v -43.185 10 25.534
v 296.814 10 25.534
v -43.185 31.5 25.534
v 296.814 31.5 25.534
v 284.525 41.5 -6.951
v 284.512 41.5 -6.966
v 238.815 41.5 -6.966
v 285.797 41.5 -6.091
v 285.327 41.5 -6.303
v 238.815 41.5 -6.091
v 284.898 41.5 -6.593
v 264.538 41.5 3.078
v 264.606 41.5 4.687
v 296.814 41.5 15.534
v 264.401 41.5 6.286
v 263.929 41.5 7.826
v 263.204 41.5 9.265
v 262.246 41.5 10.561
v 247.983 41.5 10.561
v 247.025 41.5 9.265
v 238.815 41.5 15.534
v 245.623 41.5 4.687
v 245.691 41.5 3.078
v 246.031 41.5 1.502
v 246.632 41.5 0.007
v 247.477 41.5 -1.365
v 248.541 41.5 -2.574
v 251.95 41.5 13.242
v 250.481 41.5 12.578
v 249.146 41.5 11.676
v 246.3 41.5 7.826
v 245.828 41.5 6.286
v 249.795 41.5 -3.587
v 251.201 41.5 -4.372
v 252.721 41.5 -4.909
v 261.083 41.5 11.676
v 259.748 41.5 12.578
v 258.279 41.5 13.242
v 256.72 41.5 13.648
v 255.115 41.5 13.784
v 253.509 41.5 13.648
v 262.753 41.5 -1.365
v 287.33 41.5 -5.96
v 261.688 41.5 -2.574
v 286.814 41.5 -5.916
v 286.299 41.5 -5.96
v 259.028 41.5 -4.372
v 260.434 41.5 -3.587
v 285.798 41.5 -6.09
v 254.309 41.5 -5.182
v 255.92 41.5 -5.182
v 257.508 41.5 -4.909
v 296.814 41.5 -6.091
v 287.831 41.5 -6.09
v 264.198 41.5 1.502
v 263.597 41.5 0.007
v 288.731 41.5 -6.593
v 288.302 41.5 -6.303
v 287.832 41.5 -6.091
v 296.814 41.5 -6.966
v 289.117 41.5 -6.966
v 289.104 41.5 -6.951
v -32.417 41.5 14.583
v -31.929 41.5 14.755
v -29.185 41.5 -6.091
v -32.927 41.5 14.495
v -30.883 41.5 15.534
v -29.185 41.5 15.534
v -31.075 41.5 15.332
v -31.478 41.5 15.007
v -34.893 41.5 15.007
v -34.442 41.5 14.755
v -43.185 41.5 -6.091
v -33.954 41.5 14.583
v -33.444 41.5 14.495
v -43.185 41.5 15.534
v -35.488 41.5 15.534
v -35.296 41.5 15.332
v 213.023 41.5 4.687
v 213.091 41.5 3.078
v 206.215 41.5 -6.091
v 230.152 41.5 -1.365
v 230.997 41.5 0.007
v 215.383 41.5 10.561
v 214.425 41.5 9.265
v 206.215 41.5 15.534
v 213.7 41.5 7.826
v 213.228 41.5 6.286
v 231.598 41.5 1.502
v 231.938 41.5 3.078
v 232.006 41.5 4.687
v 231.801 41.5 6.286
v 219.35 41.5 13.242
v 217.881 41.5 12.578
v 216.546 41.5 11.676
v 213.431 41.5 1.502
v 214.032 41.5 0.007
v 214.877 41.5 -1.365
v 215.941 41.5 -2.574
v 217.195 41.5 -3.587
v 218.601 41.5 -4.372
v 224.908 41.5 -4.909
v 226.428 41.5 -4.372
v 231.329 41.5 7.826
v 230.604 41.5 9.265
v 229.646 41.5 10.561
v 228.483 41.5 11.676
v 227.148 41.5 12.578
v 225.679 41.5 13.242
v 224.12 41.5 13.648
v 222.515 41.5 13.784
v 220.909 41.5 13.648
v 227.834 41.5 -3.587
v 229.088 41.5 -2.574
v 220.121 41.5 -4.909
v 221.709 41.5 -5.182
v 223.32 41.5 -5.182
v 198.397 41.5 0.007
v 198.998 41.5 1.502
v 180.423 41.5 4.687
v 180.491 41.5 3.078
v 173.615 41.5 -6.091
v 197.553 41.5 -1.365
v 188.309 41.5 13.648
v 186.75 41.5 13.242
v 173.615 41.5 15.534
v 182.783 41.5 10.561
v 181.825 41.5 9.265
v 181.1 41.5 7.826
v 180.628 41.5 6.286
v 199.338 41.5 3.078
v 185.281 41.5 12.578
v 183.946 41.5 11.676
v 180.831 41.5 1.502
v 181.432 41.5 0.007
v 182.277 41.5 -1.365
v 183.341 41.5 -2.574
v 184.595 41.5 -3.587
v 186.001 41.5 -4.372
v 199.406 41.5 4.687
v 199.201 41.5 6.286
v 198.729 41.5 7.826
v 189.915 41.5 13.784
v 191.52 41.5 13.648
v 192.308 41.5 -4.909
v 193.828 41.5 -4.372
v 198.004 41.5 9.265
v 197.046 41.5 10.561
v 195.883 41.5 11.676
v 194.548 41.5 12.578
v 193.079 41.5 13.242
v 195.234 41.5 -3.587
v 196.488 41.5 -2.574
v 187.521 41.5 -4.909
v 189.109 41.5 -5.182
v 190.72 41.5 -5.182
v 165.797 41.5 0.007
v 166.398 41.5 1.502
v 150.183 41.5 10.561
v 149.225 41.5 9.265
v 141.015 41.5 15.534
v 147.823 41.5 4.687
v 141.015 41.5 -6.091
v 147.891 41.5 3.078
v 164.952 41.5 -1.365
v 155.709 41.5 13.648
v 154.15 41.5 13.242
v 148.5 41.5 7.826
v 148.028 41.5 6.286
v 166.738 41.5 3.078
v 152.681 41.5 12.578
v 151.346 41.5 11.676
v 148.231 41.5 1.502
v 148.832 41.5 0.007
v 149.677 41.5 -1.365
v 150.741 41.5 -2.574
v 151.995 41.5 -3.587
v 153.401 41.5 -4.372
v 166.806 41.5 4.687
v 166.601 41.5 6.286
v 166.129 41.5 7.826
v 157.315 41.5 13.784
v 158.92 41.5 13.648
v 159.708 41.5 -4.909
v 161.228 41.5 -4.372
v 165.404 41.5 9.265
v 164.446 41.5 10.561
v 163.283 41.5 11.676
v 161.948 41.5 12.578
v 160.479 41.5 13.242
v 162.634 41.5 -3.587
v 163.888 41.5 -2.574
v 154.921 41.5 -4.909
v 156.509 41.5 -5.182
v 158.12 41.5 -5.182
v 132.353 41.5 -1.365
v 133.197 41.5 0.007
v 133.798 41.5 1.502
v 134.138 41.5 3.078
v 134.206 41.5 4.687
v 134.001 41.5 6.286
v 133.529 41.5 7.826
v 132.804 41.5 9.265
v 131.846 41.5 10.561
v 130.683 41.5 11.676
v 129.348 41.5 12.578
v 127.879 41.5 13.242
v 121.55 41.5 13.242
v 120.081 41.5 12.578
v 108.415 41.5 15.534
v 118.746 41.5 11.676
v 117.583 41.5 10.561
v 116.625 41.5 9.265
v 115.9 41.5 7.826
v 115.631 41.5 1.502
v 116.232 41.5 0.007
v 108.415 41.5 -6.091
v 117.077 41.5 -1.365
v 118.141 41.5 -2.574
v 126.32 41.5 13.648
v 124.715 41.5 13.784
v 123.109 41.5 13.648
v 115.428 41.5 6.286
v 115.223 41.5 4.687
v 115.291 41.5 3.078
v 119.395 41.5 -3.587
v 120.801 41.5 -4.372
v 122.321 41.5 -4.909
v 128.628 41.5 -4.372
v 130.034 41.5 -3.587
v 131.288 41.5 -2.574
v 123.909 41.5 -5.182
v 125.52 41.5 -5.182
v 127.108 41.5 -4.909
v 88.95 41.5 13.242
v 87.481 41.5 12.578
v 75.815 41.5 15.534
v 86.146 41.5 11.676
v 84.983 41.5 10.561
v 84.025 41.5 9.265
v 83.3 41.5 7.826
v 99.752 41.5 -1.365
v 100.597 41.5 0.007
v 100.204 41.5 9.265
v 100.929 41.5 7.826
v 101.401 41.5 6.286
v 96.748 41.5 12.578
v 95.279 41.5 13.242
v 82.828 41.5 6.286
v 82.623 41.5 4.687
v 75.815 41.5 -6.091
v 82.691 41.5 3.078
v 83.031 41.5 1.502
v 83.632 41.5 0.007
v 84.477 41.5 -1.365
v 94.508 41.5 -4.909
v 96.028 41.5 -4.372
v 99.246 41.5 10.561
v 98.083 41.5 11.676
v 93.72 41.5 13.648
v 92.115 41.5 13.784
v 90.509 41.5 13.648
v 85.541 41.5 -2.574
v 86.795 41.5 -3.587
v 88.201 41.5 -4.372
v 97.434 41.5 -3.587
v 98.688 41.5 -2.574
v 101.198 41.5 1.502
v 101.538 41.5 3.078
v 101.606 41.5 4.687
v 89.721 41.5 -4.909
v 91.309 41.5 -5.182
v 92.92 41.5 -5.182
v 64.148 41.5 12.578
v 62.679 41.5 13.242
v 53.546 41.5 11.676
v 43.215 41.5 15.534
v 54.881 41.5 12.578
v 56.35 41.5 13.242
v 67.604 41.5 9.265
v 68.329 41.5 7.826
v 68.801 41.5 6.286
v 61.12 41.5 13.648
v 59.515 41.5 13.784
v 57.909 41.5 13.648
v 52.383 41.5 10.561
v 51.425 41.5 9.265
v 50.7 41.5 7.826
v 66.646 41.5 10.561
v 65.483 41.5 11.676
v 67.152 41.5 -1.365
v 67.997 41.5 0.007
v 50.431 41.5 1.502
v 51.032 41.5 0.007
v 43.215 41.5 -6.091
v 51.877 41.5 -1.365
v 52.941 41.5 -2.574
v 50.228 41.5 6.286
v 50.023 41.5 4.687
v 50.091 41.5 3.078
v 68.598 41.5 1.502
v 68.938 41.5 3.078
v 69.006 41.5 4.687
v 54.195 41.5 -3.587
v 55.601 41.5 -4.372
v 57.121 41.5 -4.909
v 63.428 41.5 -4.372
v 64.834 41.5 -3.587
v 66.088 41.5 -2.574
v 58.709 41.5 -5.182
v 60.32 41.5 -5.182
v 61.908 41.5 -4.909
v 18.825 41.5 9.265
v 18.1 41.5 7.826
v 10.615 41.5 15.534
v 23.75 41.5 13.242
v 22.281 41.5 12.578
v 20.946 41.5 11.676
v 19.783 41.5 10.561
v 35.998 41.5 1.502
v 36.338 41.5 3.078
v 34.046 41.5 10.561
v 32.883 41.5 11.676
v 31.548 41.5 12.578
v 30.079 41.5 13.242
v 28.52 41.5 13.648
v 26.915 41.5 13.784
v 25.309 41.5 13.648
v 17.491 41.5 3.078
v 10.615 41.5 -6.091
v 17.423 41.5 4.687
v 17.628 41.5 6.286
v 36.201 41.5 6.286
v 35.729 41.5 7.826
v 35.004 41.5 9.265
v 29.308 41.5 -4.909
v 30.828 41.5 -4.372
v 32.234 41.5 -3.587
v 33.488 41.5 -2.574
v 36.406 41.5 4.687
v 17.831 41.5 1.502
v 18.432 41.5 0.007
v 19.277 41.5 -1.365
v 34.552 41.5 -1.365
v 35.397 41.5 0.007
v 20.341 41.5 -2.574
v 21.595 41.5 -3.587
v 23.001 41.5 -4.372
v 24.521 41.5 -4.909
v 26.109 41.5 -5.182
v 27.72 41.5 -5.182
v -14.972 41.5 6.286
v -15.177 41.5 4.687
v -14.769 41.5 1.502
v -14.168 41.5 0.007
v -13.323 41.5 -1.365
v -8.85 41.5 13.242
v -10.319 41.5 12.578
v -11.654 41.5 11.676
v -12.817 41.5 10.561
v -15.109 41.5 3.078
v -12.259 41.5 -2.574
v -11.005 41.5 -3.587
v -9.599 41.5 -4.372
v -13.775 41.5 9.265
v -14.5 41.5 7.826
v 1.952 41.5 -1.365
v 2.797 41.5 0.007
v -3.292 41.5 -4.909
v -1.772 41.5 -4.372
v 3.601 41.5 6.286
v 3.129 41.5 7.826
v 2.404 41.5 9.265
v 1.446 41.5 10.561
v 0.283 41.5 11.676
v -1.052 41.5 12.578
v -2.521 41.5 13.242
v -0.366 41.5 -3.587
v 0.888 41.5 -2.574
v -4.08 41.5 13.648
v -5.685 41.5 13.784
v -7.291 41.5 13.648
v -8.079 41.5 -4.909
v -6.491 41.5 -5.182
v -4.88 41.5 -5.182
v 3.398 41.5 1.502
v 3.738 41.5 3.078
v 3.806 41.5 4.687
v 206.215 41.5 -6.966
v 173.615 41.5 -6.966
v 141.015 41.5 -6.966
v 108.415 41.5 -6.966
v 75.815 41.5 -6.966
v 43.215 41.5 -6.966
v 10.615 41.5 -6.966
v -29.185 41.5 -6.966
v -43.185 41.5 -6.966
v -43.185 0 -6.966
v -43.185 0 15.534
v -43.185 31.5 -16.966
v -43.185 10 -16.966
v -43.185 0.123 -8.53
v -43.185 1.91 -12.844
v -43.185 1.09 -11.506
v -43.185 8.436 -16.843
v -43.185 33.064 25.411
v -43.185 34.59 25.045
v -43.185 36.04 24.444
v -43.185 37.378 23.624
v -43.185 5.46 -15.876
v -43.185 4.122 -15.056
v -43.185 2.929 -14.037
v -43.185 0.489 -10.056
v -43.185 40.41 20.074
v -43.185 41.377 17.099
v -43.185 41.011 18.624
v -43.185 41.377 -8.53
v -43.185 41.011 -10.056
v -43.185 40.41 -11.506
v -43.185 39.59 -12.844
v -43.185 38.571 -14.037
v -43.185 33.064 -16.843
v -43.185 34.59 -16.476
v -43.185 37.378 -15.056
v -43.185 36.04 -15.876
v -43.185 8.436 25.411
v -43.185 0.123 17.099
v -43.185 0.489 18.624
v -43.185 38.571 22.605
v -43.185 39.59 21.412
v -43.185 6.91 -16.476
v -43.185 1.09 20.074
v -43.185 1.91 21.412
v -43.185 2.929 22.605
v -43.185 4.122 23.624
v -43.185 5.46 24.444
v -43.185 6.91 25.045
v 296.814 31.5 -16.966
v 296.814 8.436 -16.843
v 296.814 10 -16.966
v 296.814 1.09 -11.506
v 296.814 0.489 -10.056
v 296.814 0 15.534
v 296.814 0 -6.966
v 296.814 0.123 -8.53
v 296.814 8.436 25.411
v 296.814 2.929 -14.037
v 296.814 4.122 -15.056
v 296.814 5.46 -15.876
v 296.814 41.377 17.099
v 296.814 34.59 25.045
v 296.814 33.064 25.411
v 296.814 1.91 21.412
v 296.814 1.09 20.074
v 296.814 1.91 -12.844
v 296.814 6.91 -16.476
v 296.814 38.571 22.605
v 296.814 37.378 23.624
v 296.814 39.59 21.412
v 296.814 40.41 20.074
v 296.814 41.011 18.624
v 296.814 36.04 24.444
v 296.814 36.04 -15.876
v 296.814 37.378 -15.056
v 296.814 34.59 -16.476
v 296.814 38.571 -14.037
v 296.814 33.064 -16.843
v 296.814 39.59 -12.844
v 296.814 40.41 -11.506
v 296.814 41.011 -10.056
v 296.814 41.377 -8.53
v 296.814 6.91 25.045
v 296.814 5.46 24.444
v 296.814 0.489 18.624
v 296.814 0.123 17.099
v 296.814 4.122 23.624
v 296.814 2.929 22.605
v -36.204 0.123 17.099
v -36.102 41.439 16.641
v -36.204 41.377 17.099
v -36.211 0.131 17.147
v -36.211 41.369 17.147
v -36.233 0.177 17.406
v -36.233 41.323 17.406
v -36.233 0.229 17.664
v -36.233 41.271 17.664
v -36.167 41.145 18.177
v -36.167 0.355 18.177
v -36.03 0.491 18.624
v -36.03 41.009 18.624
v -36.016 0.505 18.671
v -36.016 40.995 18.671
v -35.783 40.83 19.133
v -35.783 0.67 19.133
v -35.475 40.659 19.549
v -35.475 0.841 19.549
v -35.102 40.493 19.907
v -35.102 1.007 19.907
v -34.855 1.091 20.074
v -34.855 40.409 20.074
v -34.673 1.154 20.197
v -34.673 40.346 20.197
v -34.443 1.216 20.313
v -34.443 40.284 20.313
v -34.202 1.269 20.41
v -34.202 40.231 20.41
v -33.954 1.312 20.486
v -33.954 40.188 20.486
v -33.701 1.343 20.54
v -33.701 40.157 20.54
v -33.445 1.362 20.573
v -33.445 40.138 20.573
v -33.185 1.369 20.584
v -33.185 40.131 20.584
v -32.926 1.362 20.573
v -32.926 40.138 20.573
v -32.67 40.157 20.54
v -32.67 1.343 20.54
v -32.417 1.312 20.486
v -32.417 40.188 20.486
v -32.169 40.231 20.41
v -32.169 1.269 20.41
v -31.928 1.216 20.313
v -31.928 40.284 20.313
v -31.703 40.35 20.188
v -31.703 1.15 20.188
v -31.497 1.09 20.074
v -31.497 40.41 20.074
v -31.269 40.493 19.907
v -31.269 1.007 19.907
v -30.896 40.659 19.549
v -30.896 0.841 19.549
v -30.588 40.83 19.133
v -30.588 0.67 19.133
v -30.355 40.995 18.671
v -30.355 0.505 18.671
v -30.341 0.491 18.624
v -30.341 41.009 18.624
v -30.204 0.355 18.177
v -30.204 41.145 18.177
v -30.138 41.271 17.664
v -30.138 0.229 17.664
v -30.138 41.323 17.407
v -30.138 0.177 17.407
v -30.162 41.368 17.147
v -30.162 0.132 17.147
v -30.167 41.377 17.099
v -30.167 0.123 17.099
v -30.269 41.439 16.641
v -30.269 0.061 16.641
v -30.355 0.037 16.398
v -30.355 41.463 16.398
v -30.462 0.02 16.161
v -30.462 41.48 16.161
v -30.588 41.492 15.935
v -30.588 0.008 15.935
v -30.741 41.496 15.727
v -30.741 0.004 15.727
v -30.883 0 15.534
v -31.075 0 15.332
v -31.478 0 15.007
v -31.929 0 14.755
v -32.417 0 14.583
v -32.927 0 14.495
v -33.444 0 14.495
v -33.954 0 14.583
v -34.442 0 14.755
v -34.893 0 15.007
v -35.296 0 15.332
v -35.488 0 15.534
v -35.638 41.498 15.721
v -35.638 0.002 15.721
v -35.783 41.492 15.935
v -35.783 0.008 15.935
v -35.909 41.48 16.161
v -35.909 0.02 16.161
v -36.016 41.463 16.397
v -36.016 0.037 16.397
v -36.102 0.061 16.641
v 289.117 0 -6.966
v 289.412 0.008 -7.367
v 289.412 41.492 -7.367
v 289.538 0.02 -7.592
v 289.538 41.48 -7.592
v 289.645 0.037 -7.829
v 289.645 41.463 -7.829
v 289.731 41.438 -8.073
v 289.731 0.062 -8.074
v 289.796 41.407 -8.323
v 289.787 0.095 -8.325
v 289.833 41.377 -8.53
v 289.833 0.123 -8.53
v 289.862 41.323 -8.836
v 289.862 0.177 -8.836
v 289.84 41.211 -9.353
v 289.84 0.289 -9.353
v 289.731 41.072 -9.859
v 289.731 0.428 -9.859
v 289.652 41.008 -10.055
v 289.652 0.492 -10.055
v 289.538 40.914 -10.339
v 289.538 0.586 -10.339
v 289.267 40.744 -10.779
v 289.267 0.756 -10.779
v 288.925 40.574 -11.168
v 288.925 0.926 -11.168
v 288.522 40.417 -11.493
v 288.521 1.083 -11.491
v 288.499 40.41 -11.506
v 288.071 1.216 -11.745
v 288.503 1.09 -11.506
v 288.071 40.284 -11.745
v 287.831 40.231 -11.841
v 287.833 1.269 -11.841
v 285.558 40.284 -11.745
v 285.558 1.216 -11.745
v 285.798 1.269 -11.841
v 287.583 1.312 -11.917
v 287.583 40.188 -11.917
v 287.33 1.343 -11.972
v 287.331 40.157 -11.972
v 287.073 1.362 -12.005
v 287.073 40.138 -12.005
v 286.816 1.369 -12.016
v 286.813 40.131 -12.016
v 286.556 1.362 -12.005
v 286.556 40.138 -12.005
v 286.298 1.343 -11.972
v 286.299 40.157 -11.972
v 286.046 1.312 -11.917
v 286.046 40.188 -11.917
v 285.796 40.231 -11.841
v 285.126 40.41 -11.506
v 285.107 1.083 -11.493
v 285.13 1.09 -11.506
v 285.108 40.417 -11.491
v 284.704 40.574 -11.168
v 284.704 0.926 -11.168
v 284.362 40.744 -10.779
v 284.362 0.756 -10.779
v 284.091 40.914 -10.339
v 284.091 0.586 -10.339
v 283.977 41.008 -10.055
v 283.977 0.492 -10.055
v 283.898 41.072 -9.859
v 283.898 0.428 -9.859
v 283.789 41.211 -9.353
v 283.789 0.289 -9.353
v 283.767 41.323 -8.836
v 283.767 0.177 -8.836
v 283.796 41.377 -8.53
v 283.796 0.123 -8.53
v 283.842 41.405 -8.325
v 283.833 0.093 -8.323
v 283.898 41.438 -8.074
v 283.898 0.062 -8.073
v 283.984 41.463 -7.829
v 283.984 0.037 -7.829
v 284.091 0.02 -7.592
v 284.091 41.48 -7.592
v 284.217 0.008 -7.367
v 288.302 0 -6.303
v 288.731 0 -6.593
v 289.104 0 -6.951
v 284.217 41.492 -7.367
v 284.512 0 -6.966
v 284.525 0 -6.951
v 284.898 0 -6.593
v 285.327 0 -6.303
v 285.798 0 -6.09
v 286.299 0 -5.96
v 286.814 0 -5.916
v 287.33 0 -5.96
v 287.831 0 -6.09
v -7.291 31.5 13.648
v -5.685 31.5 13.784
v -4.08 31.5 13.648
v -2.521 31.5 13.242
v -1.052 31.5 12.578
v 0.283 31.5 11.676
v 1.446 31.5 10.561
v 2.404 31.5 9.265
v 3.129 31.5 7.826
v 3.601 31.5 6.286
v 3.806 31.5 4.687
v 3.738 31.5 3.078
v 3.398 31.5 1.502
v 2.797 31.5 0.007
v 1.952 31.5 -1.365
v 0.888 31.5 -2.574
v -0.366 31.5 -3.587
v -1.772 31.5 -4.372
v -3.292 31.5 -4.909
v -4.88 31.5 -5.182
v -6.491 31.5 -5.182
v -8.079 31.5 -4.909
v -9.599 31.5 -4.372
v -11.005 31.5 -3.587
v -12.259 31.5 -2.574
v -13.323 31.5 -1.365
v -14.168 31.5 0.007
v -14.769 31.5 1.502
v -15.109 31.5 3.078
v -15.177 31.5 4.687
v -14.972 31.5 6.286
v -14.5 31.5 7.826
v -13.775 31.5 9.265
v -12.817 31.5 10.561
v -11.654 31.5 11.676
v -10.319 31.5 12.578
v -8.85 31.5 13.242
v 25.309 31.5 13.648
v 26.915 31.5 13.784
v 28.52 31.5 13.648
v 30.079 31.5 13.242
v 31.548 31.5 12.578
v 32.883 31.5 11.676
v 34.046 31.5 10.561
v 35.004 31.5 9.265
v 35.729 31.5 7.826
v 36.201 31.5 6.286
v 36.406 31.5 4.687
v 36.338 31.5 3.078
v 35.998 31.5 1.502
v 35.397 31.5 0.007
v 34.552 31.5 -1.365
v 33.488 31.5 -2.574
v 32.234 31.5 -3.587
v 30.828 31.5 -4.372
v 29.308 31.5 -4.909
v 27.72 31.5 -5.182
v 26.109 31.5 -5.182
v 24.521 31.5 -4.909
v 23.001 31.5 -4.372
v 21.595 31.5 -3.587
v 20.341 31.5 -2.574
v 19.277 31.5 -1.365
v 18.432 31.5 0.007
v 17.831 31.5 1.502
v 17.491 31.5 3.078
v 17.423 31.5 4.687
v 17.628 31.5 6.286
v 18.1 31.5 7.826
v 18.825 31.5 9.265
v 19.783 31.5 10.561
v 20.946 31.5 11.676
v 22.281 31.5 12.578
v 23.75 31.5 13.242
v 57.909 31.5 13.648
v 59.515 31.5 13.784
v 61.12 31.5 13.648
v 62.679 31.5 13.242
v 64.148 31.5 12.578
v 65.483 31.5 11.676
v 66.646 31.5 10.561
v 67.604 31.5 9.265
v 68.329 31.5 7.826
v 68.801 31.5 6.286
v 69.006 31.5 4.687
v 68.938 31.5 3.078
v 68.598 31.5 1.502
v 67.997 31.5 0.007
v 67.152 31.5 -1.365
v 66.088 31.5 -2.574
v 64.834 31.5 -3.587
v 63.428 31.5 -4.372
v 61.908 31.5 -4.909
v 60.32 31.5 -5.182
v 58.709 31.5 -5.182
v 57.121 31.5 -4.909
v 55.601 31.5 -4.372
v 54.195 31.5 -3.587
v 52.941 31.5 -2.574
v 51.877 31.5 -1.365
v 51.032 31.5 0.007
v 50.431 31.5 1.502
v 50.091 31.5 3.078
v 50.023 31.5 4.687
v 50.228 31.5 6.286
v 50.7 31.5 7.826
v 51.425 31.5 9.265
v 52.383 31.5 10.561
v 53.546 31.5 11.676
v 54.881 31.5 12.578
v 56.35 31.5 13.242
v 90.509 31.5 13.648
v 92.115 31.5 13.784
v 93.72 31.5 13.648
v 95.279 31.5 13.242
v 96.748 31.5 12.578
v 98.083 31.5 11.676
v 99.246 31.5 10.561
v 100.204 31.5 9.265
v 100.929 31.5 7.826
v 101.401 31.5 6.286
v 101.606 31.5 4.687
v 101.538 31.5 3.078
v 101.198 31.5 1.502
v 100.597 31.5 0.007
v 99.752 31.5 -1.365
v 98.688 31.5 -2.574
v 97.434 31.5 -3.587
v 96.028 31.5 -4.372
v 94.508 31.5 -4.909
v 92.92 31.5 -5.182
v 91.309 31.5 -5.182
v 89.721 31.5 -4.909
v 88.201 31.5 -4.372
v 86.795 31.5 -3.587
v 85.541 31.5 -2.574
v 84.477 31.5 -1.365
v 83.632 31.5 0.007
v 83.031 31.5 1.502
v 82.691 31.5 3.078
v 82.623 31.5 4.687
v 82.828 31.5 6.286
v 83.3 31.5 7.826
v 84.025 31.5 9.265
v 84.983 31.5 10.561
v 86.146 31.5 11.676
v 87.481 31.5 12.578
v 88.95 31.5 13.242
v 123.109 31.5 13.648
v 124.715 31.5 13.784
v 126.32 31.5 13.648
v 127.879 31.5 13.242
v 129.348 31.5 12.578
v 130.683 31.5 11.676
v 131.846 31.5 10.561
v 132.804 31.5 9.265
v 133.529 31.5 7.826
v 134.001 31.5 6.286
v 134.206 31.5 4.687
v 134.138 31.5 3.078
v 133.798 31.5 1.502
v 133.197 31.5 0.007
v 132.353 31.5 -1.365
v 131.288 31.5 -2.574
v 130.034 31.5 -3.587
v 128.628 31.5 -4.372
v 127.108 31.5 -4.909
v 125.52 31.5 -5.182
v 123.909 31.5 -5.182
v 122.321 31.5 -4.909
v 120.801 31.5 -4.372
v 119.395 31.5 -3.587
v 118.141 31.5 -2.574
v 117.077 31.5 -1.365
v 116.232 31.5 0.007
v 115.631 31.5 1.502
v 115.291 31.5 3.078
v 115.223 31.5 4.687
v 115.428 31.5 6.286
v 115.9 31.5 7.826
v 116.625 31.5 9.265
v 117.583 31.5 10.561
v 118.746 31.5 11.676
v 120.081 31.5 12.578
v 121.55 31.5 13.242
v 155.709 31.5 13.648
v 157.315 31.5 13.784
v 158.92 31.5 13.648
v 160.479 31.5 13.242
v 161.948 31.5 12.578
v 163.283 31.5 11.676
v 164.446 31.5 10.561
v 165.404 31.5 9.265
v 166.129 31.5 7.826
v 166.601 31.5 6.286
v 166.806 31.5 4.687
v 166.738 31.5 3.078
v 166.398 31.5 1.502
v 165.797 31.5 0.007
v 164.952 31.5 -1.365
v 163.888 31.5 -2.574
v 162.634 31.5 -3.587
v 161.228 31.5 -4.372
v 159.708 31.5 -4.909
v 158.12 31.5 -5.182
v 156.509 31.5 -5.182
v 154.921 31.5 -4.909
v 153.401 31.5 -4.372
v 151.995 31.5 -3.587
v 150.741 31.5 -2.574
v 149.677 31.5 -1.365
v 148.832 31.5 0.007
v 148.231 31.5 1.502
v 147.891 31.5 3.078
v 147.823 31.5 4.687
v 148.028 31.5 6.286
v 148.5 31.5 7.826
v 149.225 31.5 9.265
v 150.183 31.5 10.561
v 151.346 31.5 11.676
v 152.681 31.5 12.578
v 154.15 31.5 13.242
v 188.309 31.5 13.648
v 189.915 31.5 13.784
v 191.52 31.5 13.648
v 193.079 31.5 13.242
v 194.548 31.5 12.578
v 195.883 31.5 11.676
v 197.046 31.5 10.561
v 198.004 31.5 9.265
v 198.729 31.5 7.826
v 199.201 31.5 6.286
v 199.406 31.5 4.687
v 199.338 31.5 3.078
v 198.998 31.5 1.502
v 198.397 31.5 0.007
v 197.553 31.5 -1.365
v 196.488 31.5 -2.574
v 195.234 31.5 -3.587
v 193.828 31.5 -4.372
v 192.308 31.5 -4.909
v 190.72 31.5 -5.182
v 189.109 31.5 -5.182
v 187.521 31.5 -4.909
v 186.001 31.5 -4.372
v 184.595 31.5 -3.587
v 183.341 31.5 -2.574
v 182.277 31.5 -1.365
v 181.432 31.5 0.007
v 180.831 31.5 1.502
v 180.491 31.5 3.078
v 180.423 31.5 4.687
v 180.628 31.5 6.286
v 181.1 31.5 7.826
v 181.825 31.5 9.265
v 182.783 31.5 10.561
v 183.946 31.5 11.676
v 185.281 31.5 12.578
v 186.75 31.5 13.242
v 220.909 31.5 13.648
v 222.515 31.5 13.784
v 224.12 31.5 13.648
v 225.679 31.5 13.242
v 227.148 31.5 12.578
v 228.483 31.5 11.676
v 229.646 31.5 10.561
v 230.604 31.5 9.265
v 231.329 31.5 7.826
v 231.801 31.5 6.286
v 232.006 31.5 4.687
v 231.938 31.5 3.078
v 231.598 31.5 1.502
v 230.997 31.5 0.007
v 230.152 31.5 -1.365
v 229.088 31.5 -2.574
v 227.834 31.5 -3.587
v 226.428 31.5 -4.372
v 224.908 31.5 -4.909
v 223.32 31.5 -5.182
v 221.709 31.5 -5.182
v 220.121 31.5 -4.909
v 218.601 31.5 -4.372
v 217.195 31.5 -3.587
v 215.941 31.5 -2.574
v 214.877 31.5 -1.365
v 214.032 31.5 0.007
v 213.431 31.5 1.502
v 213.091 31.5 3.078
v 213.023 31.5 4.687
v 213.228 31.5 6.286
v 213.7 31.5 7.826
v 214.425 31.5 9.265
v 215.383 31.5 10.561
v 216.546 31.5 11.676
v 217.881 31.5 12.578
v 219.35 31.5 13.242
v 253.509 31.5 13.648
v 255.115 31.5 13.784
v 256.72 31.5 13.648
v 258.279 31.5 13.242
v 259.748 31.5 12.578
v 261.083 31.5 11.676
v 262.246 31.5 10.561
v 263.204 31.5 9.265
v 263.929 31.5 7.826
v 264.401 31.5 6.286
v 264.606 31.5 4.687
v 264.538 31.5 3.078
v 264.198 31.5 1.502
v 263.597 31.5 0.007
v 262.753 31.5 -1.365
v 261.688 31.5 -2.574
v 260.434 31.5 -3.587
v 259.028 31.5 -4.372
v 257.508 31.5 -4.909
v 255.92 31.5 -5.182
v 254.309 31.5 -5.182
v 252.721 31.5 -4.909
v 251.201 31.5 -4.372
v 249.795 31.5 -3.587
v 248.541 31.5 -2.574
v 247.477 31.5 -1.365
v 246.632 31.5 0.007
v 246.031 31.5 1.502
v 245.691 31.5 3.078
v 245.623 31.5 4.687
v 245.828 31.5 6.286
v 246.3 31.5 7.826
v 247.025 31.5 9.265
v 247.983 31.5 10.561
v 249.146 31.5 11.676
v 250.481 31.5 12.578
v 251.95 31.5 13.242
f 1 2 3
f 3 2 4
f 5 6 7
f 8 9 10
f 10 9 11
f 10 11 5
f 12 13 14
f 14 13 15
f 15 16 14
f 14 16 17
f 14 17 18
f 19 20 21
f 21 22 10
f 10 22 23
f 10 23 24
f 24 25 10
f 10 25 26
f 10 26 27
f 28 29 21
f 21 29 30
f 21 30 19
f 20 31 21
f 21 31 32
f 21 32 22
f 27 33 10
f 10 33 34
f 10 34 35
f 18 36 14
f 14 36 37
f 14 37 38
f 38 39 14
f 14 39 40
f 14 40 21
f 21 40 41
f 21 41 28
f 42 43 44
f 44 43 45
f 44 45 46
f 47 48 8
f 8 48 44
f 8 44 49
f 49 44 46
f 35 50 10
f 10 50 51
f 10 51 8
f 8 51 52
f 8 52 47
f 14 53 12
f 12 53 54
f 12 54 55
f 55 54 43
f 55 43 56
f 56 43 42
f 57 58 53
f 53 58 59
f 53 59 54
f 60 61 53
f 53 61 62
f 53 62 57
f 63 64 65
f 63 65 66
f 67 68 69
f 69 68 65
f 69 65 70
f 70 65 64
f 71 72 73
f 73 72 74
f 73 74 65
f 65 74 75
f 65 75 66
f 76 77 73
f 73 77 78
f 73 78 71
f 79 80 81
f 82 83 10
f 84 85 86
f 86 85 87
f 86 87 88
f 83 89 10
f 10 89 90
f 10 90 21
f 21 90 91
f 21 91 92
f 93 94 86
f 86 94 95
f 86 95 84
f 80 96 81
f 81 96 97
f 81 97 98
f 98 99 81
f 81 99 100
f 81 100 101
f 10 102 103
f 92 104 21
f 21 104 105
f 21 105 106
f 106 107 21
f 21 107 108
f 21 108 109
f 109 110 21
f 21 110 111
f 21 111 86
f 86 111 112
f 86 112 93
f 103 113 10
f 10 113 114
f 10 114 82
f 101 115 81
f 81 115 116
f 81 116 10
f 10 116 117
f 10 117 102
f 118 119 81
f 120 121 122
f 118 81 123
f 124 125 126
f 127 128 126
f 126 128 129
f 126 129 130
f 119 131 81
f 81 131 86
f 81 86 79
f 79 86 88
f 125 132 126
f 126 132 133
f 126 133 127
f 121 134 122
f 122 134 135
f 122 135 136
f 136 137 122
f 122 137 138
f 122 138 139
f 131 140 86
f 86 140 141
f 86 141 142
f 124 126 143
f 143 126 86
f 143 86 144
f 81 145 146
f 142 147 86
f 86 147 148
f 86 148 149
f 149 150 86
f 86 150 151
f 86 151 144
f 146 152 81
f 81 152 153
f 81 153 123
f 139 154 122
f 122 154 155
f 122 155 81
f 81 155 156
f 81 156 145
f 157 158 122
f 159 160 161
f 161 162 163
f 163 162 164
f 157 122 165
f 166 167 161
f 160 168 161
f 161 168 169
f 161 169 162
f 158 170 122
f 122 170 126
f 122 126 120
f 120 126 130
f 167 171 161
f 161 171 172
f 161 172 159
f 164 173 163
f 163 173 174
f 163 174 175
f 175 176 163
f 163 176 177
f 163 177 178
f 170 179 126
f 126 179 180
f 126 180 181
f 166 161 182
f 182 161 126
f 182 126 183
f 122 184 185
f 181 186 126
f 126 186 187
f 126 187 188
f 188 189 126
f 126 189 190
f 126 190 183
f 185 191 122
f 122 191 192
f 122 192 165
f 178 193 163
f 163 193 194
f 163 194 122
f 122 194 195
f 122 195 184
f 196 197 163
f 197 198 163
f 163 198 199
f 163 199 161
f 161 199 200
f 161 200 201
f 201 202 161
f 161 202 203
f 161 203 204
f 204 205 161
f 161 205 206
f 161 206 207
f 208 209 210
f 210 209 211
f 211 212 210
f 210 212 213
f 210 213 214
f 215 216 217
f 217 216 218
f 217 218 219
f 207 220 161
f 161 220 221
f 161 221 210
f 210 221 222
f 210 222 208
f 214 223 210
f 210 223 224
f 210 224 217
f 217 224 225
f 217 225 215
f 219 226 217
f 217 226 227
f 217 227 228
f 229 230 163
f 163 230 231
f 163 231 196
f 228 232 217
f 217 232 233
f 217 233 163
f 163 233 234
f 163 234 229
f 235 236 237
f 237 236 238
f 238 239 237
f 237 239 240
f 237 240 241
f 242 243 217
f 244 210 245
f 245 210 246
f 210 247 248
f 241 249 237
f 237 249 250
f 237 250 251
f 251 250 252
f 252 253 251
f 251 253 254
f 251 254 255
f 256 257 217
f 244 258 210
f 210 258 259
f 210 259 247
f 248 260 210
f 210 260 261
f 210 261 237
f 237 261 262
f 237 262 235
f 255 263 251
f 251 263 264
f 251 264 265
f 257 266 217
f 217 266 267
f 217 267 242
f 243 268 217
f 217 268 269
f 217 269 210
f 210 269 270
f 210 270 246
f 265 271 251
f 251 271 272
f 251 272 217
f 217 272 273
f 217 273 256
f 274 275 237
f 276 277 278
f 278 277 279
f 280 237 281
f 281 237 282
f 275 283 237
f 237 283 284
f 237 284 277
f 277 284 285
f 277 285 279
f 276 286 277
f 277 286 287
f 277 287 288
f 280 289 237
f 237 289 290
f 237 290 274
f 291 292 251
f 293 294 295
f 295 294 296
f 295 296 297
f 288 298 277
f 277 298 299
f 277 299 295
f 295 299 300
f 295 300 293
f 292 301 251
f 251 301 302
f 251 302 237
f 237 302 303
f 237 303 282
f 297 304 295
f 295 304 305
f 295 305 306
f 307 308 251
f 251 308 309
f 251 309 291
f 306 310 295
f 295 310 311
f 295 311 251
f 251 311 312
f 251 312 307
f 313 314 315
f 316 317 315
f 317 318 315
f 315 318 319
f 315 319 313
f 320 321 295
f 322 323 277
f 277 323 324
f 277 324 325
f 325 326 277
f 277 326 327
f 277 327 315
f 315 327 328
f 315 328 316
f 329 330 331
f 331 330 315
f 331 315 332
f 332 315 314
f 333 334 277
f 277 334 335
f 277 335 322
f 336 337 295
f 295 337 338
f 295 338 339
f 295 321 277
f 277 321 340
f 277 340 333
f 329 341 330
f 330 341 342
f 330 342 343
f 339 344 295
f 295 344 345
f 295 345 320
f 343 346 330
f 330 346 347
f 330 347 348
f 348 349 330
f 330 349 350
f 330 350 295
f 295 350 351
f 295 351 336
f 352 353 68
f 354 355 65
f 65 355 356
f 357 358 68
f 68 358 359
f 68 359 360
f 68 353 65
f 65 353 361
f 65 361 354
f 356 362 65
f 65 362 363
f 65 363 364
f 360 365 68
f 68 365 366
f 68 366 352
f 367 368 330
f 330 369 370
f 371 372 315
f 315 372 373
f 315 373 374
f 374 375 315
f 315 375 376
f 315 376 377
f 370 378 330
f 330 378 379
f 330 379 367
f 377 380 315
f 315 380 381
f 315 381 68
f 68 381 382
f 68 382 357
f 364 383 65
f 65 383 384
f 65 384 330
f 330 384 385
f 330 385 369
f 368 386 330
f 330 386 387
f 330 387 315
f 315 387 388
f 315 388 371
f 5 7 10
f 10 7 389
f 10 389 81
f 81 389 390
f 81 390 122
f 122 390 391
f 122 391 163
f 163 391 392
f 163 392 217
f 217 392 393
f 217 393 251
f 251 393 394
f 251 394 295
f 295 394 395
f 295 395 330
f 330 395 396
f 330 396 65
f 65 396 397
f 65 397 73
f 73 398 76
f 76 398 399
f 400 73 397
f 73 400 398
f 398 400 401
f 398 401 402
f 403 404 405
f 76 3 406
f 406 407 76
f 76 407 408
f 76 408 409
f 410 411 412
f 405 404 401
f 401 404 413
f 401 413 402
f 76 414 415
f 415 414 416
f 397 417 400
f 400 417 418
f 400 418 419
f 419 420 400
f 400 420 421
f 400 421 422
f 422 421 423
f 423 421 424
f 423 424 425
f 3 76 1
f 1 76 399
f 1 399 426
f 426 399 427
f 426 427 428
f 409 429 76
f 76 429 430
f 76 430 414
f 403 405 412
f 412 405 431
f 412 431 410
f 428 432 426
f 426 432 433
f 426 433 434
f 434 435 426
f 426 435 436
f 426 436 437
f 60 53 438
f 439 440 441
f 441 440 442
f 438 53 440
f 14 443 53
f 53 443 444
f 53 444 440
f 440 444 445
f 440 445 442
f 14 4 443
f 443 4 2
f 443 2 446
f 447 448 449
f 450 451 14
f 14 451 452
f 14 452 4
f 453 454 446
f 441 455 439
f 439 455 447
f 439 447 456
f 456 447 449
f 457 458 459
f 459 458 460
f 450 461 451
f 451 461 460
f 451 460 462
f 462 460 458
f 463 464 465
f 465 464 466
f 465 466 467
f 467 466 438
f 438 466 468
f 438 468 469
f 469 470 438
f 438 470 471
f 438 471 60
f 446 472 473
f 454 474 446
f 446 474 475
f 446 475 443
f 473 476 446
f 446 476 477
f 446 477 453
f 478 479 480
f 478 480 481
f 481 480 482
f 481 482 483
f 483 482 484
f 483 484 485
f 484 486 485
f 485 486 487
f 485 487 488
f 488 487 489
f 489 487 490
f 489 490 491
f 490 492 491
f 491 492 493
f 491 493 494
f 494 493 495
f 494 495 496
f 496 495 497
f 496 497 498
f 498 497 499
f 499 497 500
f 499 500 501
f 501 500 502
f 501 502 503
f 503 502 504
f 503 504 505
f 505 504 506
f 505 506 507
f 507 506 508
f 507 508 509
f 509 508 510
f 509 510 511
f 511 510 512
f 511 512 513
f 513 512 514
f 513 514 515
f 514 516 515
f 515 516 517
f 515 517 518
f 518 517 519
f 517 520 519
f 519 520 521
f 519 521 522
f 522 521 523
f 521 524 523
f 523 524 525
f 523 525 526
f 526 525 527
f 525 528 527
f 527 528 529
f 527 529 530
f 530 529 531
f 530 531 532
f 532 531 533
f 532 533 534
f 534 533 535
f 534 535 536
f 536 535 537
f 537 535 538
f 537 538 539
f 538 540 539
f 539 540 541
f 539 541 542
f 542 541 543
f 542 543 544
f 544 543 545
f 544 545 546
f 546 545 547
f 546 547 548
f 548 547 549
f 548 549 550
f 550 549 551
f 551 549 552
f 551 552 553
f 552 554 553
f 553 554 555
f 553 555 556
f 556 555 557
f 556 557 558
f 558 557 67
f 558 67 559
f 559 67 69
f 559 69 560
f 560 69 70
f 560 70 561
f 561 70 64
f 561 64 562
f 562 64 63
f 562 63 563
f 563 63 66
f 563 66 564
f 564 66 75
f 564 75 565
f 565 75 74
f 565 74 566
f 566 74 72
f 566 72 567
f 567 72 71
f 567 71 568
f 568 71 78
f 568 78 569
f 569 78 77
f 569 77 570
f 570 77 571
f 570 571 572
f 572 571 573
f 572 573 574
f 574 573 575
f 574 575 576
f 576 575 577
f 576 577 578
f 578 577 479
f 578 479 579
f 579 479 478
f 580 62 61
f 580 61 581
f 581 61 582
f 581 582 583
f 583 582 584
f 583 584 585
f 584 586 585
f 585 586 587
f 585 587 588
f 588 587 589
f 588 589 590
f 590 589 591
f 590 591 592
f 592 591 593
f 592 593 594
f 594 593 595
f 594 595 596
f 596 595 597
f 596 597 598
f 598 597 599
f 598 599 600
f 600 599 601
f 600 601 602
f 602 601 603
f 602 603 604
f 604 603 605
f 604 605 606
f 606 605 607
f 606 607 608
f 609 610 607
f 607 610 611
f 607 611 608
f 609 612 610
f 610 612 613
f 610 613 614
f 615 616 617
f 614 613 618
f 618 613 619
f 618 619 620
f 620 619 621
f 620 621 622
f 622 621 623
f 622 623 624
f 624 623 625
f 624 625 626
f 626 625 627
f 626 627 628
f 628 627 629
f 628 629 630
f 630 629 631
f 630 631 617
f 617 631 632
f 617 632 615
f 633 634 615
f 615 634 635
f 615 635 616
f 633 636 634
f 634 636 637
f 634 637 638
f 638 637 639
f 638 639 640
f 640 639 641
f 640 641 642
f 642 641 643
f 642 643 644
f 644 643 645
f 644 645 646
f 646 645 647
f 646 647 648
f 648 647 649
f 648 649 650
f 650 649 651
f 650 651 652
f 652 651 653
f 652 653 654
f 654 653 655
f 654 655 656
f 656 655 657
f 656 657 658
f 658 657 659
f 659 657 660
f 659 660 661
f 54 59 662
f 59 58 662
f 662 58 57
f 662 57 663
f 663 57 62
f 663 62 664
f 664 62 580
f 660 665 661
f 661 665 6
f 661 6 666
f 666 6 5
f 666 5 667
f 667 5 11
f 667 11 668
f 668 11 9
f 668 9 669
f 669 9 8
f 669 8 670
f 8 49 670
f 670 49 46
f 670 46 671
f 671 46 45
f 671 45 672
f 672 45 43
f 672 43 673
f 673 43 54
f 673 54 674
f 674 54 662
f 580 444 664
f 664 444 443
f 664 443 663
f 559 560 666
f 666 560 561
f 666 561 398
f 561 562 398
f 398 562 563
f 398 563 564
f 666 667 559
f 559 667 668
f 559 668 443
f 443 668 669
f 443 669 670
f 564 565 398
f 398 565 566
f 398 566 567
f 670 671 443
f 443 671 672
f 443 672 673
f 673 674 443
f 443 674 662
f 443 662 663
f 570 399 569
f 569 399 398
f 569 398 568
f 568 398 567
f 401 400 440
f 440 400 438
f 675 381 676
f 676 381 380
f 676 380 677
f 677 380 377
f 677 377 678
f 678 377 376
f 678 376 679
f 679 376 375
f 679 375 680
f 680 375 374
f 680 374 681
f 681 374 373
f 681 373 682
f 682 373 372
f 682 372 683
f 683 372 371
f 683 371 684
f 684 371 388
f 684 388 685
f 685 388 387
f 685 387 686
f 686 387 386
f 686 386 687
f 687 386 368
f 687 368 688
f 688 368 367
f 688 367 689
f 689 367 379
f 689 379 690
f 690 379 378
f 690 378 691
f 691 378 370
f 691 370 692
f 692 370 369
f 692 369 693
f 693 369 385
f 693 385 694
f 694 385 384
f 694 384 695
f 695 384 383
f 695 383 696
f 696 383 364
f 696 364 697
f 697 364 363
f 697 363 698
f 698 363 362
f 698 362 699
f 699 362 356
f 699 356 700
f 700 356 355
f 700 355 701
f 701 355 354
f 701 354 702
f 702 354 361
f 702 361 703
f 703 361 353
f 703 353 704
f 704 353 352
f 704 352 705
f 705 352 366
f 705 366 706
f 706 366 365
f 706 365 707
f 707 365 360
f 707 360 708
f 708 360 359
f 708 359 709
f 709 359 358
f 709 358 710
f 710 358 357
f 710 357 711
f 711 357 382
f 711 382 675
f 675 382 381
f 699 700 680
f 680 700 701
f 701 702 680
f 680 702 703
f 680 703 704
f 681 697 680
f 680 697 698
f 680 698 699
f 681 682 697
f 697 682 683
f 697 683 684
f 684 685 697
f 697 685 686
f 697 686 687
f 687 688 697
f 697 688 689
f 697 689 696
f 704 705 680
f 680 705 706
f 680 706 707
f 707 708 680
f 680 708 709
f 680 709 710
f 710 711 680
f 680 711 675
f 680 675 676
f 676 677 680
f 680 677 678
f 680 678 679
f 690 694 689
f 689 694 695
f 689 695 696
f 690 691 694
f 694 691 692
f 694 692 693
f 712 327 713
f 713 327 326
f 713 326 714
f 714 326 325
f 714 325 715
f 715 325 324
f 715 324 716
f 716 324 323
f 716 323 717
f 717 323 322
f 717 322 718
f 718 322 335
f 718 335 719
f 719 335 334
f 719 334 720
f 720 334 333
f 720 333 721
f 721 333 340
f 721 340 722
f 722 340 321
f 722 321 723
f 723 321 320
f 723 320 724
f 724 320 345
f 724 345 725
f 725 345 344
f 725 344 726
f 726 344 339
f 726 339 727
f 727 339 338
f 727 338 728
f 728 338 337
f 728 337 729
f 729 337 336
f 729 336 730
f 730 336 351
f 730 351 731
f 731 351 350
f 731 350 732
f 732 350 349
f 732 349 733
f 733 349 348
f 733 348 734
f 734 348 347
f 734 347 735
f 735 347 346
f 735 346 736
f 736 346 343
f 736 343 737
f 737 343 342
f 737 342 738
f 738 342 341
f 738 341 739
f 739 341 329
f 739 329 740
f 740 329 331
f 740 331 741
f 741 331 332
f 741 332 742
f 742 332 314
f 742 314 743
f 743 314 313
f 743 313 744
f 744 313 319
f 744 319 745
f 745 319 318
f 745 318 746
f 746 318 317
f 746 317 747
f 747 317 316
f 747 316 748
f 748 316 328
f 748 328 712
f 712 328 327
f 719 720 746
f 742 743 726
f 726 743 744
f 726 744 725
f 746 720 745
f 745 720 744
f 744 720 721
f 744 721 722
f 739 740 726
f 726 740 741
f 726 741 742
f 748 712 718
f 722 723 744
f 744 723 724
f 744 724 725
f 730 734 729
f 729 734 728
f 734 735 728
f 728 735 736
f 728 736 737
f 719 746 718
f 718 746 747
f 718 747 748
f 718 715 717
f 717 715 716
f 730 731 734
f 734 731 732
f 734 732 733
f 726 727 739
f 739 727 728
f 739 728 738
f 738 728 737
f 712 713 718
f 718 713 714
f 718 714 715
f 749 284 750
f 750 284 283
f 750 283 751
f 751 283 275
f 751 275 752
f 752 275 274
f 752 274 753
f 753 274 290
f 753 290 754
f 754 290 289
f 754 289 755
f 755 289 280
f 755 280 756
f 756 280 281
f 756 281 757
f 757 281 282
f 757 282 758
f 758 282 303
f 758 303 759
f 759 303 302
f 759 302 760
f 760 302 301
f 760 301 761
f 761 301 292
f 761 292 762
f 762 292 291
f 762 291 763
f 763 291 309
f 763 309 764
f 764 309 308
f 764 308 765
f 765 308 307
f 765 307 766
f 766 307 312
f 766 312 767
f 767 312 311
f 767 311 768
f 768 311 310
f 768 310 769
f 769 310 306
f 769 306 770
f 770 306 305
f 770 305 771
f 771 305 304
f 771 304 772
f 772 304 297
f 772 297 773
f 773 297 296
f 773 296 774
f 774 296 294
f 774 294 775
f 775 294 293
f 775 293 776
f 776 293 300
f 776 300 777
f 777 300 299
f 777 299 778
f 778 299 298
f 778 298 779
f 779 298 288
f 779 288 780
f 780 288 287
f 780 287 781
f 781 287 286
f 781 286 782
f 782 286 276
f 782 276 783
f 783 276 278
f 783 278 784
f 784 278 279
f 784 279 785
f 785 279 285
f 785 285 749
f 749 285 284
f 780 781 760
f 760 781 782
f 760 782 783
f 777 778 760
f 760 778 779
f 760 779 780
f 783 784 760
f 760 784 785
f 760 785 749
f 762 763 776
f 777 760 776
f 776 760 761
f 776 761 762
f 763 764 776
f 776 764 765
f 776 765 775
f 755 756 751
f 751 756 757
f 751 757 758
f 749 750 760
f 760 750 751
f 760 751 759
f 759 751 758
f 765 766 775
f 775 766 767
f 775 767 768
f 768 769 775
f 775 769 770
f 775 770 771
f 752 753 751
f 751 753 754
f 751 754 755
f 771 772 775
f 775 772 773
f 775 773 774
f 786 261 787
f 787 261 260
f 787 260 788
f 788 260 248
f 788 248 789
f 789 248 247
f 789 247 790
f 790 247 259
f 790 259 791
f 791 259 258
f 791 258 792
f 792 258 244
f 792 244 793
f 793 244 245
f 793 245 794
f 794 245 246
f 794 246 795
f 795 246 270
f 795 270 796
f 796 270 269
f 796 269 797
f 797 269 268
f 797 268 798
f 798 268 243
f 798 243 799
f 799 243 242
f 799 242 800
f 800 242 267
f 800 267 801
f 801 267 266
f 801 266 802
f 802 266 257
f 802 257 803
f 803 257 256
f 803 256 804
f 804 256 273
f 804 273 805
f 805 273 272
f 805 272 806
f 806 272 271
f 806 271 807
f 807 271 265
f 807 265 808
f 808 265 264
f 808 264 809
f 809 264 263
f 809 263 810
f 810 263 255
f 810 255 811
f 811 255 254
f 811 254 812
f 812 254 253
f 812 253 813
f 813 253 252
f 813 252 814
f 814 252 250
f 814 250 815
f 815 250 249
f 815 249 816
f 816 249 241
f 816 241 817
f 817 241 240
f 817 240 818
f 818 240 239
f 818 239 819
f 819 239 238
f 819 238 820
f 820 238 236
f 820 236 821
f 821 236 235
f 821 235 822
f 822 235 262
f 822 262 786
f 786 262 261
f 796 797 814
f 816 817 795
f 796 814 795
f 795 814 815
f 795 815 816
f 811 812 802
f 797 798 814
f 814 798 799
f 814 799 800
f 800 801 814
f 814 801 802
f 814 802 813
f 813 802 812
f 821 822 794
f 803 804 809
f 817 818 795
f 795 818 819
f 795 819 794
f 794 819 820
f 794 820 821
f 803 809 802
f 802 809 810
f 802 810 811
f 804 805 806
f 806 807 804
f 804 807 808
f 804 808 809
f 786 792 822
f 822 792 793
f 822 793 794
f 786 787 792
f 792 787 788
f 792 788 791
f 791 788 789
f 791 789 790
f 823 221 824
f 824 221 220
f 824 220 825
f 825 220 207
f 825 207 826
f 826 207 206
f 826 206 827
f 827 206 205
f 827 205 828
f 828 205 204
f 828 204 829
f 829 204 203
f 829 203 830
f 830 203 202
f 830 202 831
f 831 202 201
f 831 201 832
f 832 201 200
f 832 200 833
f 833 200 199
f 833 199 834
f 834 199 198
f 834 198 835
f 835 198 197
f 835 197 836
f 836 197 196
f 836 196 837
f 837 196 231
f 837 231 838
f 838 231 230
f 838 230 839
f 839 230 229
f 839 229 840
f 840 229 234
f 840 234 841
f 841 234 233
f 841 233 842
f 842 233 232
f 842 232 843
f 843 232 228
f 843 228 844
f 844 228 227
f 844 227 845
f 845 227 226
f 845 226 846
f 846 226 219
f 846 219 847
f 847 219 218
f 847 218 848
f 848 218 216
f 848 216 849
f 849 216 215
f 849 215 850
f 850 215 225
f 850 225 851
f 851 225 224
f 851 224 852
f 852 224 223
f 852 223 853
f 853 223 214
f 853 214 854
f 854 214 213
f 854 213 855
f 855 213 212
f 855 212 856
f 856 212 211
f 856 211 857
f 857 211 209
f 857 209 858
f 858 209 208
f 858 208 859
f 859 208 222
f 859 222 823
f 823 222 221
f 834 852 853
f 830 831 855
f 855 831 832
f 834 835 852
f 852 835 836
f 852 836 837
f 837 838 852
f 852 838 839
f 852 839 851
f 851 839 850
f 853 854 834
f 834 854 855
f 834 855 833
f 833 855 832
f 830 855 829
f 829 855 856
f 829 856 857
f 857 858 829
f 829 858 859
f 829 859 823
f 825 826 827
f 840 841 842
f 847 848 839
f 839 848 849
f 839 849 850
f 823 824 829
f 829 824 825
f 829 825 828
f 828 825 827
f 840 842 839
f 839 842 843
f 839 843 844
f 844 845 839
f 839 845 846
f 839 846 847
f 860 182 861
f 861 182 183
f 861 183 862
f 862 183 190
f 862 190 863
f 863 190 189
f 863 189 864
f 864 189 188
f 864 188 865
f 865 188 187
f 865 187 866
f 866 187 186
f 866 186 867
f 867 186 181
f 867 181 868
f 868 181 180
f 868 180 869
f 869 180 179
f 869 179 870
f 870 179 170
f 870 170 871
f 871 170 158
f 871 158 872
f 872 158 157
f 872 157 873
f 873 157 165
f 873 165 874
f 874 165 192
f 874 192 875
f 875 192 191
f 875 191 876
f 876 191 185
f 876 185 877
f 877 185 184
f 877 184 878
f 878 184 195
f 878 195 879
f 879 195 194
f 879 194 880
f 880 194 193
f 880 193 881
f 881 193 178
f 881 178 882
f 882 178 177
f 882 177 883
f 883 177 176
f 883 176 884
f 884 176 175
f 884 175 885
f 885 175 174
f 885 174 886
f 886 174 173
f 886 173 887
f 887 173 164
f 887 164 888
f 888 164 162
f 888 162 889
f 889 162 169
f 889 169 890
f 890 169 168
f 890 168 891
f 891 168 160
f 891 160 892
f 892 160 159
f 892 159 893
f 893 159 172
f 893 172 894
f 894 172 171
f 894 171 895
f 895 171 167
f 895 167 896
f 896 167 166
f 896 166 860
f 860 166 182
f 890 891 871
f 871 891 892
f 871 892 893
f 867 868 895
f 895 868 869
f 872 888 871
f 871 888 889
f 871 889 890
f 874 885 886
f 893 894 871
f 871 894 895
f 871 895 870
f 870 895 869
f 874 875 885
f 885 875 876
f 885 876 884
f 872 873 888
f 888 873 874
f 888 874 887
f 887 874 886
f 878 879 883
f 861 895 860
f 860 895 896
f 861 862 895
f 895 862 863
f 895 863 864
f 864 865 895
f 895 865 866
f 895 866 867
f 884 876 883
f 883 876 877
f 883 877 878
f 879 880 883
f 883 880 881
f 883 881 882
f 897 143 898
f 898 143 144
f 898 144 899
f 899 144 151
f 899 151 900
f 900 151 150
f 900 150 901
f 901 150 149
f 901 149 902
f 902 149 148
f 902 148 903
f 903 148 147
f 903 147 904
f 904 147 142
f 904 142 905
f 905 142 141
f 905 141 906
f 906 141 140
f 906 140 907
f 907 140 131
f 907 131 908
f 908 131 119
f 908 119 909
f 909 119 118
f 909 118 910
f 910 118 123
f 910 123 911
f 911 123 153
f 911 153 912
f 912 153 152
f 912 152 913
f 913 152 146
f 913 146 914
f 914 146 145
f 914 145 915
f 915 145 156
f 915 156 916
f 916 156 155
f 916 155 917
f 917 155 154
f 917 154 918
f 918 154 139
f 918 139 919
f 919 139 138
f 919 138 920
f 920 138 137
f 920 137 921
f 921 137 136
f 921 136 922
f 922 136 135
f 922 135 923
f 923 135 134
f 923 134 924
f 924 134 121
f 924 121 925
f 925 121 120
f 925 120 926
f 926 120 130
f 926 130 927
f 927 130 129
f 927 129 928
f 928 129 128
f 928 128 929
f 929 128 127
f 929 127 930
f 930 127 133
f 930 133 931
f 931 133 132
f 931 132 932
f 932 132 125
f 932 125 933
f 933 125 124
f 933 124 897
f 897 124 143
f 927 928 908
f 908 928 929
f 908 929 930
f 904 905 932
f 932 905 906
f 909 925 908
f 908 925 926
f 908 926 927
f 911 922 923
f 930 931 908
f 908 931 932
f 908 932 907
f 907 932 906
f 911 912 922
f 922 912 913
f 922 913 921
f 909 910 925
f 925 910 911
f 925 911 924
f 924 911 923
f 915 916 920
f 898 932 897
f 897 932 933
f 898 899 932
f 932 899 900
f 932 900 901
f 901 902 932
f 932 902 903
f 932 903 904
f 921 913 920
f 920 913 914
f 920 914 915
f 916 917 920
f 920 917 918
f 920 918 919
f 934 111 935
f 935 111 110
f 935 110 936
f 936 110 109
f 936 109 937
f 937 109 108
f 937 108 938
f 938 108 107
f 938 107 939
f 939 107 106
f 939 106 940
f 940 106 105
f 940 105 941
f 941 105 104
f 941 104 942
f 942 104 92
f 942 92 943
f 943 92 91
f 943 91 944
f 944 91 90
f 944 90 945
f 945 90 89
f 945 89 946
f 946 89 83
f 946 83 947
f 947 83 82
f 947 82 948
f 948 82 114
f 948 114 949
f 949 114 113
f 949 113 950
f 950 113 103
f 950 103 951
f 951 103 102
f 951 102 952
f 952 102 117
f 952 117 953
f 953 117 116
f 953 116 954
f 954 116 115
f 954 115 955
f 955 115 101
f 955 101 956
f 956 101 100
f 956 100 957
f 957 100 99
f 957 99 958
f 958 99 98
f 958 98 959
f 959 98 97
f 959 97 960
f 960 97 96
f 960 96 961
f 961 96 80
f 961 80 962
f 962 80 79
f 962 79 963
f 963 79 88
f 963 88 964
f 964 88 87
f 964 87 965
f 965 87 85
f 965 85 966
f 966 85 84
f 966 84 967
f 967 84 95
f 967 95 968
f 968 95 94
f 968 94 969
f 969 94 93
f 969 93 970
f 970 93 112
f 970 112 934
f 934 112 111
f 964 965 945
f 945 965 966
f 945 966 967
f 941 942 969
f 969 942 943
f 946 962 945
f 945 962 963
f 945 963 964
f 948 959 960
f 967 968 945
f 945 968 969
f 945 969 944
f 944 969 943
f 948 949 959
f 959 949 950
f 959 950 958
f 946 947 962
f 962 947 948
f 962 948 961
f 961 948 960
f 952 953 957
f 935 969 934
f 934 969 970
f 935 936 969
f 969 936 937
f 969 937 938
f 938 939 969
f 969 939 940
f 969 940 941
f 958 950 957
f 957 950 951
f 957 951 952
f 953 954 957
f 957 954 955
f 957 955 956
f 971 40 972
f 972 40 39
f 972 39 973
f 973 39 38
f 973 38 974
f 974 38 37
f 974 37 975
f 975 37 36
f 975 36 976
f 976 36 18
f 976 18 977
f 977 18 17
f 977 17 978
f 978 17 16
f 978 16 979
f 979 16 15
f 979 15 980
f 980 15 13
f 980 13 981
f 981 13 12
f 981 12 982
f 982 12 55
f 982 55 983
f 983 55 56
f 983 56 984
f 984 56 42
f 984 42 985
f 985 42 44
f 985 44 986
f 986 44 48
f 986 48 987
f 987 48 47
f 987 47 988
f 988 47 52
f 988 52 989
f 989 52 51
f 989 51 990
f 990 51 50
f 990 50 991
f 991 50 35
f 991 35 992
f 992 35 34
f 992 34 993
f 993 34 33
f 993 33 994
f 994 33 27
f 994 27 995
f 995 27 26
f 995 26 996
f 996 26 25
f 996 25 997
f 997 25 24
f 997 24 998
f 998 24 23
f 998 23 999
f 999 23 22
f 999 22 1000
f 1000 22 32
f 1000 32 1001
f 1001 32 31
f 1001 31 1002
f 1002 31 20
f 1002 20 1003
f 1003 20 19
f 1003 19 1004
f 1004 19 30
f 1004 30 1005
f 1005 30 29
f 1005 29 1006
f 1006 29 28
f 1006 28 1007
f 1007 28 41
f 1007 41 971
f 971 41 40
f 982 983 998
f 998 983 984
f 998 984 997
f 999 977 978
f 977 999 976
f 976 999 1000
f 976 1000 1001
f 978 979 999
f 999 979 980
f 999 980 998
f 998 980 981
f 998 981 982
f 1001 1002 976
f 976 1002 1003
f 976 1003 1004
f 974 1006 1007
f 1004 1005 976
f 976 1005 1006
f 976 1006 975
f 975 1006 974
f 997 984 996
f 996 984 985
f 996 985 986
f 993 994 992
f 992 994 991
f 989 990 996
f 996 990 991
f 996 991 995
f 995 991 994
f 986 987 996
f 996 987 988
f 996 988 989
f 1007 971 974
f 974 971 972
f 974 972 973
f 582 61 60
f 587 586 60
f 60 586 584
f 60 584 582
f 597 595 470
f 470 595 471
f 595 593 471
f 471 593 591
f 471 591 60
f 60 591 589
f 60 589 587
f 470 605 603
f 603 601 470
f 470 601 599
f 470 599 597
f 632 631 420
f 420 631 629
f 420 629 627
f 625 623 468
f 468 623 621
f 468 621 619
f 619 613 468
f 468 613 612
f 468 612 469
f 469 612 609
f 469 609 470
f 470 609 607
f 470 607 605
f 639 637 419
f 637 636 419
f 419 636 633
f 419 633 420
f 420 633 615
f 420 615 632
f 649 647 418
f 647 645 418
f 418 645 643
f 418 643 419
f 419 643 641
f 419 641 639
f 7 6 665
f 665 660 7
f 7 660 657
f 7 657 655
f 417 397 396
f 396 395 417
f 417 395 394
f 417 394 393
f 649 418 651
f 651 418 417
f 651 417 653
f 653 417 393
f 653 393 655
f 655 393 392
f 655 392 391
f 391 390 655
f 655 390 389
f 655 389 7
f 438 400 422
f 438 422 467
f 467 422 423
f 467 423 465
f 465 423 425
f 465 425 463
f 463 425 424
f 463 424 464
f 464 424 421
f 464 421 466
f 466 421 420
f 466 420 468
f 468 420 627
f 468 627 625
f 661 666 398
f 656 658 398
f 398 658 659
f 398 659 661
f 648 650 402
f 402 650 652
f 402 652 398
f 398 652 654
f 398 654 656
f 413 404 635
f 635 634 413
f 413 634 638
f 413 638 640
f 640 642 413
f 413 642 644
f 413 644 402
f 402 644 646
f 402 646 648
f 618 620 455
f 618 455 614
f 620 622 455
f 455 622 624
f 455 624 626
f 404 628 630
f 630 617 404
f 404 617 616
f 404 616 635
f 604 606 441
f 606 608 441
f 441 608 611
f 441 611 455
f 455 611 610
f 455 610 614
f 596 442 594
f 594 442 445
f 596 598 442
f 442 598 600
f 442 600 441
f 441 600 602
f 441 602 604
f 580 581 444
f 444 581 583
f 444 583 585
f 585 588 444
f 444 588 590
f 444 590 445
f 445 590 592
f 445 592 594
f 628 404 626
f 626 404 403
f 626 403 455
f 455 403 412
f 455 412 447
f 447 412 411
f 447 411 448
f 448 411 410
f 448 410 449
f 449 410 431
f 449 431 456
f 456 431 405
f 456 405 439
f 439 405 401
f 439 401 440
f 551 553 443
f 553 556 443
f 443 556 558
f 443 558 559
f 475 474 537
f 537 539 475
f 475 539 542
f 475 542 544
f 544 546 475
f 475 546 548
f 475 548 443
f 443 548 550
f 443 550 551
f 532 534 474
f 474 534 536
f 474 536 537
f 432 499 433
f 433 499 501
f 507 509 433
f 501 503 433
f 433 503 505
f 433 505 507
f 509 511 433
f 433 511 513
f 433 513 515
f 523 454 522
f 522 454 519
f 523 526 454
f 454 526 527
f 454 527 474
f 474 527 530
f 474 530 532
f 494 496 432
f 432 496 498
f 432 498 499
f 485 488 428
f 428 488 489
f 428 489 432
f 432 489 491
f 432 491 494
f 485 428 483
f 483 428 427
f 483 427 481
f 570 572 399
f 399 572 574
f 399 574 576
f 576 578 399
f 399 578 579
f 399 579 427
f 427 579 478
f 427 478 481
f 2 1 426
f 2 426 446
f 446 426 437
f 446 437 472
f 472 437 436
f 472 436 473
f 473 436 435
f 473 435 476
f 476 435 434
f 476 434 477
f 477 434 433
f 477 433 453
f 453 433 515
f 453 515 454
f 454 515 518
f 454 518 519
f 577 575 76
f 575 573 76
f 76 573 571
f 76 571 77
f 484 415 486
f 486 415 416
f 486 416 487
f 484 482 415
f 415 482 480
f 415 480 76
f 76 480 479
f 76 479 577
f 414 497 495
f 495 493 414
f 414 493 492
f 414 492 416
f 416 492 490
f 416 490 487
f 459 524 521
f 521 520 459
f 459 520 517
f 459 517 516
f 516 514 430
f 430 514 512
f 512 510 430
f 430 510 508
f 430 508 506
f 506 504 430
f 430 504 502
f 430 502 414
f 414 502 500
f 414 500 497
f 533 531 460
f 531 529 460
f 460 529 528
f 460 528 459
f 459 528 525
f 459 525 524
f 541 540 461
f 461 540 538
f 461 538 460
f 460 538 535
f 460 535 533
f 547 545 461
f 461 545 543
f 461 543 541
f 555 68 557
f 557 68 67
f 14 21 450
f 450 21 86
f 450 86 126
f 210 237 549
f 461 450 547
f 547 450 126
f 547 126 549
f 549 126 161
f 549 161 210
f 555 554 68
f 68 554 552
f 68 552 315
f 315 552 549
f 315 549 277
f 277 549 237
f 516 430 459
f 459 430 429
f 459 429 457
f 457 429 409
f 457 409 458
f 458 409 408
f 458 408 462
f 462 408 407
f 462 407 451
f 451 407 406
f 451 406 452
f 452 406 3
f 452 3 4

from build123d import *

# Parameters (mm, degrees)
SKETCH1_W           = 340
SKETCH1_H           = 42.5
BOSS_EXTRUDE1_DEPTH = 41.5
SKETCH2_R           = 9.5
CUT_EXTRUDE1_DEPTH  = 10
SKETCH4_R           = 3.05
CUT_EXTRUDE3_DEPTH  = 301.787476707
CUT_EXTRUDE4_DEPTH  = 344.473796902


with BuildPart() as part:
    # Sketch1 → Boss-Extrude1 (new body)
    with BuildSketch(Plane(origin=(0, 0, 0), x_dir=(1, 0, 0), z_dir=(0, 1, 0))):
        with Locations((126.814516129, -4.284274194)):
            Rectangle(SKETCH1_W, SKETCH1_H)
    extrude(amount=BOSS_EXTRUDE1_DEPTH)

    # Sketch2 → Cut-Extrude1 (cut)
    with BuildSketch(Plane(origin=(0, 41.5, 0), x_dir=(1, 0, 0), z_dir=(0, 1, 0))):
        with Locations(Location((-5.685483871, -4.284274194, 0), (0, 0, 270))):
            Circle(SKETCH2_R)
        with Locations(Location((26.914516129, -4.284274194, 0), (0, 0, 270))):
            Circle(SKETCH2_R)
        with Locations(Location((59.514516129, -4.284274194, 0), (0, 0, 270))):
            Circle(SKETCH2_R)
        with Locations(Location((92.114516129, -4.284274194, 0), (0, 0, 270))):
            Circle(SKETCH2_R)
        with Locations(Location((124.714516129, -4.284274194, 0), (0, 0, 270))):
            Circle(SKETCH2_R)
        with Locations(Location((157.314516129, -4.284274194, 0), (0, 0, 270))):
            Circle(SKETCH2_R)
        with Locations(Location((189.914516129, -4.284274194, 0), (0, 0, 270))):
            Circle(SKETCH2_R)
        with Locations(Location((222.514516129, -4.284274194, 0), (0, 0, 270))):
            Circle(SKETCH2_R)
        with Locations(Location((255.114516129, -4.284274194, 0), (0, 0, 270))):
            Circle(SKETCH2_R)
    extrude(amount=-CUT_EXTRUDE1_DEPTH, mode=Mode.SUBTRACT)

    # Sketch4 → Cut-Extrude3 (cut, through all)
    with BuildSketch(Plane(origin=(0, 41.5, 0), x_dir=(1, 0, 0), z_dir=(0, 1, 0))):
        with Locations(Location((286.814516129, 8.965725806, 0), (0, 0, 90))):
            Circle(SKETCH4_R)
        with Locations(Location((-33.185483871, -17.534274194, 0), (0, 0, 90))):
            Circle(SKETCH4_R)
    extrude(amount=-CUT_EXTRUDE3_DEPTH, mode=Mode.SUBTRACT)

    # Sketch3 → Cut-Extrude4 (cut, through all)
    with BuildSketch(Plane.ZY.offset(43.185483871)):
        with BuildLine():
            Line((-6.965725806, 41.5), (-16.965725806, 41.5))
            Line((-16.965725806, 41.5), (-16.965725806, 31.5))
            ThreePointArc((-16.965725806, 31.5), (-14.036793618, 38.571067812), (-6.965725806, 41.5))
        make_face()
        with BuildLine():
            ThreePointArc((-6.965725806, 0), (-14.036793618, 2.928932188), (-16.965725806, 10))
            Line((-16.965725806, 10), (-16.965725806, 0))
            Line((-16.965725806, 0), (-6.965725806, 0))
        make_face()
        with BuildLine():
            Line((25.534274194, 0), (25.534274194, 10))
            ThreePointArc((25.534274194, 10), (22.605342005, 2.928932188), (15.534274194, 0))
            Line((15.534274194, 0), (25.534274194, 0))
        make_face()
        with BuildLine():
            Line((25.534274194, 41.5), (15.534274194, 41.5))
            ThreePointArc((15.534274194, 41.5), (22.605342005, 38.571067812), (25.534274194, 31.5))
            Line((25.534274194, 31.5), (25.534274194, 41.5))
        make_face()
    extrude(amount=-CUT_EXTRUDE4_DEPTH, mode=Mode.SUBTRACT)


solid = part.part
